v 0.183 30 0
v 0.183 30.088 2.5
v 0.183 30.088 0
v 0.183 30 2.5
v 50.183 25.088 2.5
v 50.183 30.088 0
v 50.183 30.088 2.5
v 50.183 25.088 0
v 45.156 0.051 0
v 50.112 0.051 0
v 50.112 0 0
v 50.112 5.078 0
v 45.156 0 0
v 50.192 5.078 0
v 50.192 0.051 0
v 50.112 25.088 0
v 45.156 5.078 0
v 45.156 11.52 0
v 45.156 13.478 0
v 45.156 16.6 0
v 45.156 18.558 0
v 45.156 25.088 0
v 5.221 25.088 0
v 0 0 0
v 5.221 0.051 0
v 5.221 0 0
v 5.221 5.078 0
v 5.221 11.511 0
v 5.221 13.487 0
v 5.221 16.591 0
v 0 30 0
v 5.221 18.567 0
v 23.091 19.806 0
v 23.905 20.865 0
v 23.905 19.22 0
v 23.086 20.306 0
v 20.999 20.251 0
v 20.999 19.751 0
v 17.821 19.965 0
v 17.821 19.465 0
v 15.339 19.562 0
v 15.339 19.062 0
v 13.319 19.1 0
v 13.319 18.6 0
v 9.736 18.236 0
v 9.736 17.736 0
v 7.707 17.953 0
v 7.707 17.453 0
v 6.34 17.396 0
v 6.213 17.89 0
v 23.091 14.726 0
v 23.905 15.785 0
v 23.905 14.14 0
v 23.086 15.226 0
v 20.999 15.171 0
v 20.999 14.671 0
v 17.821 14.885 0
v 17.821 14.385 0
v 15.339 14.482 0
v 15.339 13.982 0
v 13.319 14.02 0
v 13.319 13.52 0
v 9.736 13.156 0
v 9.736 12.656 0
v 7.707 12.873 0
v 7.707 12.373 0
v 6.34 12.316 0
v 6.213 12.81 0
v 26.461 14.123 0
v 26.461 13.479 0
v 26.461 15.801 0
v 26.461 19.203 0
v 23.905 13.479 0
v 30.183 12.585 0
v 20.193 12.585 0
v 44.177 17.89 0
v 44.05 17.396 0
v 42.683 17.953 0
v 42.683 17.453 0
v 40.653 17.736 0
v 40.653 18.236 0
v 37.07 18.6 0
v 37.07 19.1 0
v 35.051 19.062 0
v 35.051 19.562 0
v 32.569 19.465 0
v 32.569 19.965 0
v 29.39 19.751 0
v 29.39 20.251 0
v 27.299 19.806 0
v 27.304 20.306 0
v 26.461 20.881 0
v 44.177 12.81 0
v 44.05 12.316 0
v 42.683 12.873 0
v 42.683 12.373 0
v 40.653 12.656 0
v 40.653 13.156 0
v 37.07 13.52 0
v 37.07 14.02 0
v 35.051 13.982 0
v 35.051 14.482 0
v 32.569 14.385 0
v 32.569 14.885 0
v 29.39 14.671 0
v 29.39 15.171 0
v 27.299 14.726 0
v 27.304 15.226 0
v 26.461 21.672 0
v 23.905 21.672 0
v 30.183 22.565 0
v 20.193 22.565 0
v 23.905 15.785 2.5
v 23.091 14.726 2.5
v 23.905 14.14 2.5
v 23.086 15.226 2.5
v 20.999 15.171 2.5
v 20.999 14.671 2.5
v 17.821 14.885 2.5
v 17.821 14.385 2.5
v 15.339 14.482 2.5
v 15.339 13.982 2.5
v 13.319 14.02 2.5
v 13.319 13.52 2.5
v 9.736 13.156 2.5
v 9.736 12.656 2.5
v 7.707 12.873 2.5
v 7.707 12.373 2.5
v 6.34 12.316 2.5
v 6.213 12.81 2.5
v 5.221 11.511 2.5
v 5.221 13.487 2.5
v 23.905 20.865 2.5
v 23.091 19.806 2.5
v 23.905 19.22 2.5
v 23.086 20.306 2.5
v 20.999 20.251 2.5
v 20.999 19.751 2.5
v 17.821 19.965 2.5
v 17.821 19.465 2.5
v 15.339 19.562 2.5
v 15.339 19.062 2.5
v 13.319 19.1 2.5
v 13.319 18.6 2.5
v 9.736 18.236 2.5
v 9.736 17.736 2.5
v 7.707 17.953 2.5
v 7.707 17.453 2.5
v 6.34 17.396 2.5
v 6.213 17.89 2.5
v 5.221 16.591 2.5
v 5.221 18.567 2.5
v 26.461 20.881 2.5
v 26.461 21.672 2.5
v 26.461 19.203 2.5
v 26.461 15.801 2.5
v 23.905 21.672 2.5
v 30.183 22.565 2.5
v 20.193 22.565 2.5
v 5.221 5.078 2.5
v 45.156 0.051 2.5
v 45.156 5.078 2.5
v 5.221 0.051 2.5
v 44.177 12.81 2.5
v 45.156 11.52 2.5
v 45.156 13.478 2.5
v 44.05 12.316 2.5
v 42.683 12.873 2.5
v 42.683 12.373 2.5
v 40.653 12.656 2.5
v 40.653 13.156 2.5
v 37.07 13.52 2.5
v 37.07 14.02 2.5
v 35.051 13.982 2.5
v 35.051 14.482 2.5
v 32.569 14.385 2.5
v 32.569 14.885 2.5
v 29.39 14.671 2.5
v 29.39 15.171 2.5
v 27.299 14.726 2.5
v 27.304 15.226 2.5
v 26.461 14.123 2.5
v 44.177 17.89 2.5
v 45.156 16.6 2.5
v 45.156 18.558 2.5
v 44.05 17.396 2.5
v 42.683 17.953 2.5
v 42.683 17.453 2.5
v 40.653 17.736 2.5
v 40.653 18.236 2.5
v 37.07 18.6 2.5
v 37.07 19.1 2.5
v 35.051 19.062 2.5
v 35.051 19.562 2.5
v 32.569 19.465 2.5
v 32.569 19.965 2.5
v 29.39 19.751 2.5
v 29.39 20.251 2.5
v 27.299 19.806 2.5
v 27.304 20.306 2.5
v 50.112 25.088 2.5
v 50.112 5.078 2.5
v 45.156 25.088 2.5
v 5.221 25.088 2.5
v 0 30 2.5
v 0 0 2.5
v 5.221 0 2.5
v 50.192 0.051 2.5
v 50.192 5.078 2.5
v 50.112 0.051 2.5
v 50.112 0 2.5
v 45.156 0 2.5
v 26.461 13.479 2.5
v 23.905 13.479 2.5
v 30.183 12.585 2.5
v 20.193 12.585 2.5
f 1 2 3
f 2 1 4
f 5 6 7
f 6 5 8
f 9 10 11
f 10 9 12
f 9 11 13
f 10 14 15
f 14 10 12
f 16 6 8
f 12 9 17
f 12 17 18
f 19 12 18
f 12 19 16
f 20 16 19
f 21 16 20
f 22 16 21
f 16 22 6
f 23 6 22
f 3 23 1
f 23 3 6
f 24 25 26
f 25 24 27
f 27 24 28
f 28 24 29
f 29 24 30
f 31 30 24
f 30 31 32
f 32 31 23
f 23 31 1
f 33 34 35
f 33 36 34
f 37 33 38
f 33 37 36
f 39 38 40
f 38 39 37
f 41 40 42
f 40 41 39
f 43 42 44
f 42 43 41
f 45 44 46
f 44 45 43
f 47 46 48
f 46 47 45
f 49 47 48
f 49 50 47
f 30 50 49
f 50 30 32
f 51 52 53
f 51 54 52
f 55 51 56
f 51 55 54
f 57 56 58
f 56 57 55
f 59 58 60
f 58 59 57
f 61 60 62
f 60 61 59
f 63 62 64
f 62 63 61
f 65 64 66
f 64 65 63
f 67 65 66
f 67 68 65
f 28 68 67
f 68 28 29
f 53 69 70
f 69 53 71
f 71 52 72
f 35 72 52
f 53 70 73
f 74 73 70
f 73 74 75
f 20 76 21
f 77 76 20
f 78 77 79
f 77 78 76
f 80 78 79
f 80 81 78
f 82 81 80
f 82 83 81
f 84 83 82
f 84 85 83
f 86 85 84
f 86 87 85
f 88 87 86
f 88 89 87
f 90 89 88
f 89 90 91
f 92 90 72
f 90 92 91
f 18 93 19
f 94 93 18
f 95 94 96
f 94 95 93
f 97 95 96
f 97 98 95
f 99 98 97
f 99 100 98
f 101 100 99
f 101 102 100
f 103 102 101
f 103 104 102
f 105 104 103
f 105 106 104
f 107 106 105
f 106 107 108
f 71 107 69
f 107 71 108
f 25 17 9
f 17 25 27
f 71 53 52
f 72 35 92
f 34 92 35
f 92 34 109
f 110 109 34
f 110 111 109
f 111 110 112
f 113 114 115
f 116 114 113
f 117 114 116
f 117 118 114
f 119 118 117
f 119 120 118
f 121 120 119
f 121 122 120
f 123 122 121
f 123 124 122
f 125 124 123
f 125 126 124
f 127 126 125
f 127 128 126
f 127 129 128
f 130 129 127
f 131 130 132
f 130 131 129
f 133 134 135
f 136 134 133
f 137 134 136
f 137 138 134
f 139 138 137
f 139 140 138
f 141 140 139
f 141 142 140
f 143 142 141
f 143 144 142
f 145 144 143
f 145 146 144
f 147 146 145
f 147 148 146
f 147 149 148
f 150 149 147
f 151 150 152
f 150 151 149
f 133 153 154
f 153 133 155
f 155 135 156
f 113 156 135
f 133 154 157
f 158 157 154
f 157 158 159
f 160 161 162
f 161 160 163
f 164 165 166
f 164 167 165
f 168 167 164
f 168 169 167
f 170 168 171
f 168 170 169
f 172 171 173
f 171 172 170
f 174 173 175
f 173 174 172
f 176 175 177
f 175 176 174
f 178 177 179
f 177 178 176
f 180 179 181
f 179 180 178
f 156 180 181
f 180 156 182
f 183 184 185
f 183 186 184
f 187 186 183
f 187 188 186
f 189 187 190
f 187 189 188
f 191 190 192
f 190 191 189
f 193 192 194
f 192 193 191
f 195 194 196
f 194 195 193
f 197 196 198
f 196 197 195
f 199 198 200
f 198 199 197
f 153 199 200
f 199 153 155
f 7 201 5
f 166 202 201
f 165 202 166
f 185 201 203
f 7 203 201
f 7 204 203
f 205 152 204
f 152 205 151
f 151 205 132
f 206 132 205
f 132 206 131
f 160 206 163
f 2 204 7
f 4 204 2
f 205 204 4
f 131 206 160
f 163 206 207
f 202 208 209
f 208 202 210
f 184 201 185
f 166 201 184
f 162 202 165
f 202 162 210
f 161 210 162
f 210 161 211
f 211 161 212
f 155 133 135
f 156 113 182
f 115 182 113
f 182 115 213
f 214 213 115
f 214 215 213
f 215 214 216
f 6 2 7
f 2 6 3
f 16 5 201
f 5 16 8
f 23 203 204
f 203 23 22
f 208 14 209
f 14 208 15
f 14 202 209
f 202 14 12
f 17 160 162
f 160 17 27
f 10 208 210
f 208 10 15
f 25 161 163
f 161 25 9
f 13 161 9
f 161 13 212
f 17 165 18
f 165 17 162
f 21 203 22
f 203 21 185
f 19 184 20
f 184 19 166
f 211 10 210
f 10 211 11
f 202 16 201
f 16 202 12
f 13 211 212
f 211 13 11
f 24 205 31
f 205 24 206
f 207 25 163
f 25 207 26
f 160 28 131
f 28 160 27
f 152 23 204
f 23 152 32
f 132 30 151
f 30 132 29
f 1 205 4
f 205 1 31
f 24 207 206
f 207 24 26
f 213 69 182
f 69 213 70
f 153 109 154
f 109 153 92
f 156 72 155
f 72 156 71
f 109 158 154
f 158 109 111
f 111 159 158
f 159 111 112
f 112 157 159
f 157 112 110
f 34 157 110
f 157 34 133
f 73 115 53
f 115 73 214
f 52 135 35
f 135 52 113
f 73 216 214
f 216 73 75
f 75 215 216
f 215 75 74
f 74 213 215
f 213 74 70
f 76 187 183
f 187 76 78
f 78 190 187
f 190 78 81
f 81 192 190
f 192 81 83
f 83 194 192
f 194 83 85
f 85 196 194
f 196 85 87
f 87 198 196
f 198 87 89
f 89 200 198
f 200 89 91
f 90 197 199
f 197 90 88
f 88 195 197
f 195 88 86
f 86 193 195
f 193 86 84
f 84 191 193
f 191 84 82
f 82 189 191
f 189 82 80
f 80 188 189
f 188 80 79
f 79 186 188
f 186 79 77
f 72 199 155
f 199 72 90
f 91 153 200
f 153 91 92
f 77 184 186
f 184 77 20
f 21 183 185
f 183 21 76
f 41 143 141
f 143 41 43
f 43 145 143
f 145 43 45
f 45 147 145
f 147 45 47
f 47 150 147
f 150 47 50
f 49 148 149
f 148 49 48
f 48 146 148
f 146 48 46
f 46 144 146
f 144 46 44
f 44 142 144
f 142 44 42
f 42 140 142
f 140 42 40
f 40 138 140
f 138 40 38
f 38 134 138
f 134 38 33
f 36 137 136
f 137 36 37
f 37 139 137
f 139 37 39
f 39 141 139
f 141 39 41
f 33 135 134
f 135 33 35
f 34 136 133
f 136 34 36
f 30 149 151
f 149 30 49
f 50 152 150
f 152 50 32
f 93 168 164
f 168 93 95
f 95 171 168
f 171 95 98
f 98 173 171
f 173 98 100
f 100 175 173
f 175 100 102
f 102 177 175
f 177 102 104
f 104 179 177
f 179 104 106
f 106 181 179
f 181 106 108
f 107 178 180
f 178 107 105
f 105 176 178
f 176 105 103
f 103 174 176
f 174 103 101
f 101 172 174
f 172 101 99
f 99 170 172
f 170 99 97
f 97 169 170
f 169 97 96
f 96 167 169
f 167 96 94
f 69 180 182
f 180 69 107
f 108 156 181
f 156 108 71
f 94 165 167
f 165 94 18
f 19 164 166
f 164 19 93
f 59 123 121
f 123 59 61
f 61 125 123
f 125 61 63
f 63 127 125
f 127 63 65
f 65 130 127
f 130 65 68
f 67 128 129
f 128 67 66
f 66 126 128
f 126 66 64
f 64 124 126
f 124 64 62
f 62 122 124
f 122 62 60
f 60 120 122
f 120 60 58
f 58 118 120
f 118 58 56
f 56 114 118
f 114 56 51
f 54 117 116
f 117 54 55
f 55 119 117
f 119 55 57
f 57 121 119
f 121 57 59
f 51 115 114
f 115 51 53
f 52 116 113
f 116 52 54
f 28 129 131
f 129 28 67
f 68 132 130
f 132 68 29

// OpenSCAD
// OpenSCAD file automatically generated by svg2cookiercutter.py
wallHeight = 12;
wallFlareWidth = 3;
wallFlareThickness = 1.5;
minWallWidth = 1;
maxWallWidth = 3;
insideWallFlareWidth = 2;
insideWallFlareThickness = 1.5;
minInsideWallWidth = 1;
maxInsideWallWidth = 3;
featureHeight = 2.5;
minFeatureThickness = 0.1;
maxFeatureThickness = 3;
connectorThickness = 1;
size = 50.192;

module dummy() {}

scale = size/50.192;

module ribbon(points, thickness=1, closed=false) {
    p = closed ? concat(points, [points[0]]) : points;
    
    union() {
        for (i=[1:len(p)-1]) {
            hull() {
                translate(p[i-1]) circle(d=thickness, $fn=8);
                translate(p[i]) circle(d=thickness, $fn=8);
            }
        }
    }
}

module cookieCutter() {

path0=scale*[[0.000,30.000],[-50.000,30.000],[-50.000,25.000],[0.000,25.000],[0.000,30.000]];
render(convexity=10) linear_extrude(height=featureHeight) polygon(points=path0);
path1=scale*[[0.009,4.990],[-50.000,4.990],[-50.000,-0.037],[0.009,-0.037],[0.009,4.990]];
render(convexity=10) linear_extrude(height=featureHeight) polygon(points=path1);
path2=scale*[[-0.071,29.912],[-5.027,29.912],[-5.027,-0.088],[-0.071,-0.088],[-0.071,29.912]];
render(convexity=10) linear_extrude(height=featureHeight) polygon(points=path2);
path3=scale*[[-44.962,29.912],[-50.183,29.912],[-50.183,-0.088],[-44.962,-0.088],[-44.962,29.912]];
render(convexity=10) linear_extrude(height=featureHeight) polygon(points=path3);
path4=scale*[[-20.000,22.477],[-23.722,21.584],[-23.722,13.391],[-20.000,12.497],[-23.722,12.497],[-29.990,12.497],[-26.278,13.391],[-26.278,21.584],[-29.990,22.477],[-20.000,22.477]];
render(convexity=10) linear_extrude(height=featureHeight) polygon(points=path4);
path5=scale*[[-24.900,20.021],[-20.793,19.913],[-17.614,19.627],[-15.132,19.224],[-13.113,18.762],[-9.530,17.898],[-7.500,17.615],[-5.000,17.510]];
render(convexity=10) linear_extrude(height=(featureHeight)) ribbon(path5,thickness=min(maxFeatureThickness,max(0.500,minFeatureThickness)));
path6=scale*[[-25.051,21.701],[-22.525,19.976],[-25.025,18.177],[-25.051,21.701]];
render(convexity=10) linear_extrude(height=featureHeight) polygon(points=path6);
path7=scale*[[-3.898,19.241],[-6.424,17.517],[-3.924,15.718],[-3.898,19.241]];
render(convexity=10) linear_extrude(height=featureHeight) polygon(points=path7);
path8=scale*[[-25.076,20.021],[-29.184,19.913],[-32.362,19.627],[-34.844,19.224],[-36.864,18.762],[-40.447,17.898],[-42.476,17.615],[-44.976,17.510]];
render(convexity=10) linear_extrude(height=(featureHeight)) ribbon(path8,thickness=min(maxFeatureThickness,max(0.500,minFeatureThickness)));
path9=scale*[[-24.926,21.701],[-27.451,19.976],[-24.951,18.177],[-24.926,21.701]];
render(convexity=10) linear_extrude(height=featureHeight) polygon(points=path9);
path10=scale*[[-46.078,19.241],[-43.552,17.517],[-46.053,15.718],[-46.078,19.241]];
render(convexity=10) linear_extrude(height=featureHeight) polygon(points=path10);
path11=scale*[[-24.900,14.941],[-20.793,14.833],[-17.614,14.547],[-15.132,14.144],[-13.113,13.682],[-9.530,12.818],[-7.500,12.535],[-5.000,12.430]];
render(convexity=10) linear_extrude(height=(featureHeight)) ribbon(path11,thickness=min(maxFeatureThickness,max(0.500,minFeatureThickness)));
path12=scale*[[-25.051,16.621],[-22.525,14.896],[-25.025,13.097],[-25.051,16.621]];
render(convexity=10) linear_extrude(height=featureHeight) polygon(points=path12);
path13=scale*[[-3.898,14.161],[-6.424,12.437],[-3.924,10.638],[-3.898,14.161]];
render(convexity=10) linear_extrude(height=featureHeight) polygon(points=path13);
path14=scale*[[-25.076,14.941],[-29.184,14.833],[-32.362,14.547],[-34.844,14.144],[-36.864,13.682],[-40.447,12.818],[-42.476,12.535],[-44.976,12.430]];
render(convexity=10) linear_extrude(height=(featureHeight)) ribbon(path14,thickness=min(maxFeatureThickness,max(0.500,minFeatureThickness)));
path15=scale*[[-24.926,16.621],[-27.451,14.896],[-24.951,13.097],[-24.926,16.621]];
render(convexity=10) linear_extrude(height=featureHeight) polygon(points=path15);
path16=scale*[[-46.078,14.161],[-43.552,12.437],[-46.053,10.638],[-46.078,14.161]];
render(convexity=10) linear_extrude(height=featureHeight) polygon(points=path16);
}

translate([50.183*scale,0.088*scale,0]) cookieCutter();
